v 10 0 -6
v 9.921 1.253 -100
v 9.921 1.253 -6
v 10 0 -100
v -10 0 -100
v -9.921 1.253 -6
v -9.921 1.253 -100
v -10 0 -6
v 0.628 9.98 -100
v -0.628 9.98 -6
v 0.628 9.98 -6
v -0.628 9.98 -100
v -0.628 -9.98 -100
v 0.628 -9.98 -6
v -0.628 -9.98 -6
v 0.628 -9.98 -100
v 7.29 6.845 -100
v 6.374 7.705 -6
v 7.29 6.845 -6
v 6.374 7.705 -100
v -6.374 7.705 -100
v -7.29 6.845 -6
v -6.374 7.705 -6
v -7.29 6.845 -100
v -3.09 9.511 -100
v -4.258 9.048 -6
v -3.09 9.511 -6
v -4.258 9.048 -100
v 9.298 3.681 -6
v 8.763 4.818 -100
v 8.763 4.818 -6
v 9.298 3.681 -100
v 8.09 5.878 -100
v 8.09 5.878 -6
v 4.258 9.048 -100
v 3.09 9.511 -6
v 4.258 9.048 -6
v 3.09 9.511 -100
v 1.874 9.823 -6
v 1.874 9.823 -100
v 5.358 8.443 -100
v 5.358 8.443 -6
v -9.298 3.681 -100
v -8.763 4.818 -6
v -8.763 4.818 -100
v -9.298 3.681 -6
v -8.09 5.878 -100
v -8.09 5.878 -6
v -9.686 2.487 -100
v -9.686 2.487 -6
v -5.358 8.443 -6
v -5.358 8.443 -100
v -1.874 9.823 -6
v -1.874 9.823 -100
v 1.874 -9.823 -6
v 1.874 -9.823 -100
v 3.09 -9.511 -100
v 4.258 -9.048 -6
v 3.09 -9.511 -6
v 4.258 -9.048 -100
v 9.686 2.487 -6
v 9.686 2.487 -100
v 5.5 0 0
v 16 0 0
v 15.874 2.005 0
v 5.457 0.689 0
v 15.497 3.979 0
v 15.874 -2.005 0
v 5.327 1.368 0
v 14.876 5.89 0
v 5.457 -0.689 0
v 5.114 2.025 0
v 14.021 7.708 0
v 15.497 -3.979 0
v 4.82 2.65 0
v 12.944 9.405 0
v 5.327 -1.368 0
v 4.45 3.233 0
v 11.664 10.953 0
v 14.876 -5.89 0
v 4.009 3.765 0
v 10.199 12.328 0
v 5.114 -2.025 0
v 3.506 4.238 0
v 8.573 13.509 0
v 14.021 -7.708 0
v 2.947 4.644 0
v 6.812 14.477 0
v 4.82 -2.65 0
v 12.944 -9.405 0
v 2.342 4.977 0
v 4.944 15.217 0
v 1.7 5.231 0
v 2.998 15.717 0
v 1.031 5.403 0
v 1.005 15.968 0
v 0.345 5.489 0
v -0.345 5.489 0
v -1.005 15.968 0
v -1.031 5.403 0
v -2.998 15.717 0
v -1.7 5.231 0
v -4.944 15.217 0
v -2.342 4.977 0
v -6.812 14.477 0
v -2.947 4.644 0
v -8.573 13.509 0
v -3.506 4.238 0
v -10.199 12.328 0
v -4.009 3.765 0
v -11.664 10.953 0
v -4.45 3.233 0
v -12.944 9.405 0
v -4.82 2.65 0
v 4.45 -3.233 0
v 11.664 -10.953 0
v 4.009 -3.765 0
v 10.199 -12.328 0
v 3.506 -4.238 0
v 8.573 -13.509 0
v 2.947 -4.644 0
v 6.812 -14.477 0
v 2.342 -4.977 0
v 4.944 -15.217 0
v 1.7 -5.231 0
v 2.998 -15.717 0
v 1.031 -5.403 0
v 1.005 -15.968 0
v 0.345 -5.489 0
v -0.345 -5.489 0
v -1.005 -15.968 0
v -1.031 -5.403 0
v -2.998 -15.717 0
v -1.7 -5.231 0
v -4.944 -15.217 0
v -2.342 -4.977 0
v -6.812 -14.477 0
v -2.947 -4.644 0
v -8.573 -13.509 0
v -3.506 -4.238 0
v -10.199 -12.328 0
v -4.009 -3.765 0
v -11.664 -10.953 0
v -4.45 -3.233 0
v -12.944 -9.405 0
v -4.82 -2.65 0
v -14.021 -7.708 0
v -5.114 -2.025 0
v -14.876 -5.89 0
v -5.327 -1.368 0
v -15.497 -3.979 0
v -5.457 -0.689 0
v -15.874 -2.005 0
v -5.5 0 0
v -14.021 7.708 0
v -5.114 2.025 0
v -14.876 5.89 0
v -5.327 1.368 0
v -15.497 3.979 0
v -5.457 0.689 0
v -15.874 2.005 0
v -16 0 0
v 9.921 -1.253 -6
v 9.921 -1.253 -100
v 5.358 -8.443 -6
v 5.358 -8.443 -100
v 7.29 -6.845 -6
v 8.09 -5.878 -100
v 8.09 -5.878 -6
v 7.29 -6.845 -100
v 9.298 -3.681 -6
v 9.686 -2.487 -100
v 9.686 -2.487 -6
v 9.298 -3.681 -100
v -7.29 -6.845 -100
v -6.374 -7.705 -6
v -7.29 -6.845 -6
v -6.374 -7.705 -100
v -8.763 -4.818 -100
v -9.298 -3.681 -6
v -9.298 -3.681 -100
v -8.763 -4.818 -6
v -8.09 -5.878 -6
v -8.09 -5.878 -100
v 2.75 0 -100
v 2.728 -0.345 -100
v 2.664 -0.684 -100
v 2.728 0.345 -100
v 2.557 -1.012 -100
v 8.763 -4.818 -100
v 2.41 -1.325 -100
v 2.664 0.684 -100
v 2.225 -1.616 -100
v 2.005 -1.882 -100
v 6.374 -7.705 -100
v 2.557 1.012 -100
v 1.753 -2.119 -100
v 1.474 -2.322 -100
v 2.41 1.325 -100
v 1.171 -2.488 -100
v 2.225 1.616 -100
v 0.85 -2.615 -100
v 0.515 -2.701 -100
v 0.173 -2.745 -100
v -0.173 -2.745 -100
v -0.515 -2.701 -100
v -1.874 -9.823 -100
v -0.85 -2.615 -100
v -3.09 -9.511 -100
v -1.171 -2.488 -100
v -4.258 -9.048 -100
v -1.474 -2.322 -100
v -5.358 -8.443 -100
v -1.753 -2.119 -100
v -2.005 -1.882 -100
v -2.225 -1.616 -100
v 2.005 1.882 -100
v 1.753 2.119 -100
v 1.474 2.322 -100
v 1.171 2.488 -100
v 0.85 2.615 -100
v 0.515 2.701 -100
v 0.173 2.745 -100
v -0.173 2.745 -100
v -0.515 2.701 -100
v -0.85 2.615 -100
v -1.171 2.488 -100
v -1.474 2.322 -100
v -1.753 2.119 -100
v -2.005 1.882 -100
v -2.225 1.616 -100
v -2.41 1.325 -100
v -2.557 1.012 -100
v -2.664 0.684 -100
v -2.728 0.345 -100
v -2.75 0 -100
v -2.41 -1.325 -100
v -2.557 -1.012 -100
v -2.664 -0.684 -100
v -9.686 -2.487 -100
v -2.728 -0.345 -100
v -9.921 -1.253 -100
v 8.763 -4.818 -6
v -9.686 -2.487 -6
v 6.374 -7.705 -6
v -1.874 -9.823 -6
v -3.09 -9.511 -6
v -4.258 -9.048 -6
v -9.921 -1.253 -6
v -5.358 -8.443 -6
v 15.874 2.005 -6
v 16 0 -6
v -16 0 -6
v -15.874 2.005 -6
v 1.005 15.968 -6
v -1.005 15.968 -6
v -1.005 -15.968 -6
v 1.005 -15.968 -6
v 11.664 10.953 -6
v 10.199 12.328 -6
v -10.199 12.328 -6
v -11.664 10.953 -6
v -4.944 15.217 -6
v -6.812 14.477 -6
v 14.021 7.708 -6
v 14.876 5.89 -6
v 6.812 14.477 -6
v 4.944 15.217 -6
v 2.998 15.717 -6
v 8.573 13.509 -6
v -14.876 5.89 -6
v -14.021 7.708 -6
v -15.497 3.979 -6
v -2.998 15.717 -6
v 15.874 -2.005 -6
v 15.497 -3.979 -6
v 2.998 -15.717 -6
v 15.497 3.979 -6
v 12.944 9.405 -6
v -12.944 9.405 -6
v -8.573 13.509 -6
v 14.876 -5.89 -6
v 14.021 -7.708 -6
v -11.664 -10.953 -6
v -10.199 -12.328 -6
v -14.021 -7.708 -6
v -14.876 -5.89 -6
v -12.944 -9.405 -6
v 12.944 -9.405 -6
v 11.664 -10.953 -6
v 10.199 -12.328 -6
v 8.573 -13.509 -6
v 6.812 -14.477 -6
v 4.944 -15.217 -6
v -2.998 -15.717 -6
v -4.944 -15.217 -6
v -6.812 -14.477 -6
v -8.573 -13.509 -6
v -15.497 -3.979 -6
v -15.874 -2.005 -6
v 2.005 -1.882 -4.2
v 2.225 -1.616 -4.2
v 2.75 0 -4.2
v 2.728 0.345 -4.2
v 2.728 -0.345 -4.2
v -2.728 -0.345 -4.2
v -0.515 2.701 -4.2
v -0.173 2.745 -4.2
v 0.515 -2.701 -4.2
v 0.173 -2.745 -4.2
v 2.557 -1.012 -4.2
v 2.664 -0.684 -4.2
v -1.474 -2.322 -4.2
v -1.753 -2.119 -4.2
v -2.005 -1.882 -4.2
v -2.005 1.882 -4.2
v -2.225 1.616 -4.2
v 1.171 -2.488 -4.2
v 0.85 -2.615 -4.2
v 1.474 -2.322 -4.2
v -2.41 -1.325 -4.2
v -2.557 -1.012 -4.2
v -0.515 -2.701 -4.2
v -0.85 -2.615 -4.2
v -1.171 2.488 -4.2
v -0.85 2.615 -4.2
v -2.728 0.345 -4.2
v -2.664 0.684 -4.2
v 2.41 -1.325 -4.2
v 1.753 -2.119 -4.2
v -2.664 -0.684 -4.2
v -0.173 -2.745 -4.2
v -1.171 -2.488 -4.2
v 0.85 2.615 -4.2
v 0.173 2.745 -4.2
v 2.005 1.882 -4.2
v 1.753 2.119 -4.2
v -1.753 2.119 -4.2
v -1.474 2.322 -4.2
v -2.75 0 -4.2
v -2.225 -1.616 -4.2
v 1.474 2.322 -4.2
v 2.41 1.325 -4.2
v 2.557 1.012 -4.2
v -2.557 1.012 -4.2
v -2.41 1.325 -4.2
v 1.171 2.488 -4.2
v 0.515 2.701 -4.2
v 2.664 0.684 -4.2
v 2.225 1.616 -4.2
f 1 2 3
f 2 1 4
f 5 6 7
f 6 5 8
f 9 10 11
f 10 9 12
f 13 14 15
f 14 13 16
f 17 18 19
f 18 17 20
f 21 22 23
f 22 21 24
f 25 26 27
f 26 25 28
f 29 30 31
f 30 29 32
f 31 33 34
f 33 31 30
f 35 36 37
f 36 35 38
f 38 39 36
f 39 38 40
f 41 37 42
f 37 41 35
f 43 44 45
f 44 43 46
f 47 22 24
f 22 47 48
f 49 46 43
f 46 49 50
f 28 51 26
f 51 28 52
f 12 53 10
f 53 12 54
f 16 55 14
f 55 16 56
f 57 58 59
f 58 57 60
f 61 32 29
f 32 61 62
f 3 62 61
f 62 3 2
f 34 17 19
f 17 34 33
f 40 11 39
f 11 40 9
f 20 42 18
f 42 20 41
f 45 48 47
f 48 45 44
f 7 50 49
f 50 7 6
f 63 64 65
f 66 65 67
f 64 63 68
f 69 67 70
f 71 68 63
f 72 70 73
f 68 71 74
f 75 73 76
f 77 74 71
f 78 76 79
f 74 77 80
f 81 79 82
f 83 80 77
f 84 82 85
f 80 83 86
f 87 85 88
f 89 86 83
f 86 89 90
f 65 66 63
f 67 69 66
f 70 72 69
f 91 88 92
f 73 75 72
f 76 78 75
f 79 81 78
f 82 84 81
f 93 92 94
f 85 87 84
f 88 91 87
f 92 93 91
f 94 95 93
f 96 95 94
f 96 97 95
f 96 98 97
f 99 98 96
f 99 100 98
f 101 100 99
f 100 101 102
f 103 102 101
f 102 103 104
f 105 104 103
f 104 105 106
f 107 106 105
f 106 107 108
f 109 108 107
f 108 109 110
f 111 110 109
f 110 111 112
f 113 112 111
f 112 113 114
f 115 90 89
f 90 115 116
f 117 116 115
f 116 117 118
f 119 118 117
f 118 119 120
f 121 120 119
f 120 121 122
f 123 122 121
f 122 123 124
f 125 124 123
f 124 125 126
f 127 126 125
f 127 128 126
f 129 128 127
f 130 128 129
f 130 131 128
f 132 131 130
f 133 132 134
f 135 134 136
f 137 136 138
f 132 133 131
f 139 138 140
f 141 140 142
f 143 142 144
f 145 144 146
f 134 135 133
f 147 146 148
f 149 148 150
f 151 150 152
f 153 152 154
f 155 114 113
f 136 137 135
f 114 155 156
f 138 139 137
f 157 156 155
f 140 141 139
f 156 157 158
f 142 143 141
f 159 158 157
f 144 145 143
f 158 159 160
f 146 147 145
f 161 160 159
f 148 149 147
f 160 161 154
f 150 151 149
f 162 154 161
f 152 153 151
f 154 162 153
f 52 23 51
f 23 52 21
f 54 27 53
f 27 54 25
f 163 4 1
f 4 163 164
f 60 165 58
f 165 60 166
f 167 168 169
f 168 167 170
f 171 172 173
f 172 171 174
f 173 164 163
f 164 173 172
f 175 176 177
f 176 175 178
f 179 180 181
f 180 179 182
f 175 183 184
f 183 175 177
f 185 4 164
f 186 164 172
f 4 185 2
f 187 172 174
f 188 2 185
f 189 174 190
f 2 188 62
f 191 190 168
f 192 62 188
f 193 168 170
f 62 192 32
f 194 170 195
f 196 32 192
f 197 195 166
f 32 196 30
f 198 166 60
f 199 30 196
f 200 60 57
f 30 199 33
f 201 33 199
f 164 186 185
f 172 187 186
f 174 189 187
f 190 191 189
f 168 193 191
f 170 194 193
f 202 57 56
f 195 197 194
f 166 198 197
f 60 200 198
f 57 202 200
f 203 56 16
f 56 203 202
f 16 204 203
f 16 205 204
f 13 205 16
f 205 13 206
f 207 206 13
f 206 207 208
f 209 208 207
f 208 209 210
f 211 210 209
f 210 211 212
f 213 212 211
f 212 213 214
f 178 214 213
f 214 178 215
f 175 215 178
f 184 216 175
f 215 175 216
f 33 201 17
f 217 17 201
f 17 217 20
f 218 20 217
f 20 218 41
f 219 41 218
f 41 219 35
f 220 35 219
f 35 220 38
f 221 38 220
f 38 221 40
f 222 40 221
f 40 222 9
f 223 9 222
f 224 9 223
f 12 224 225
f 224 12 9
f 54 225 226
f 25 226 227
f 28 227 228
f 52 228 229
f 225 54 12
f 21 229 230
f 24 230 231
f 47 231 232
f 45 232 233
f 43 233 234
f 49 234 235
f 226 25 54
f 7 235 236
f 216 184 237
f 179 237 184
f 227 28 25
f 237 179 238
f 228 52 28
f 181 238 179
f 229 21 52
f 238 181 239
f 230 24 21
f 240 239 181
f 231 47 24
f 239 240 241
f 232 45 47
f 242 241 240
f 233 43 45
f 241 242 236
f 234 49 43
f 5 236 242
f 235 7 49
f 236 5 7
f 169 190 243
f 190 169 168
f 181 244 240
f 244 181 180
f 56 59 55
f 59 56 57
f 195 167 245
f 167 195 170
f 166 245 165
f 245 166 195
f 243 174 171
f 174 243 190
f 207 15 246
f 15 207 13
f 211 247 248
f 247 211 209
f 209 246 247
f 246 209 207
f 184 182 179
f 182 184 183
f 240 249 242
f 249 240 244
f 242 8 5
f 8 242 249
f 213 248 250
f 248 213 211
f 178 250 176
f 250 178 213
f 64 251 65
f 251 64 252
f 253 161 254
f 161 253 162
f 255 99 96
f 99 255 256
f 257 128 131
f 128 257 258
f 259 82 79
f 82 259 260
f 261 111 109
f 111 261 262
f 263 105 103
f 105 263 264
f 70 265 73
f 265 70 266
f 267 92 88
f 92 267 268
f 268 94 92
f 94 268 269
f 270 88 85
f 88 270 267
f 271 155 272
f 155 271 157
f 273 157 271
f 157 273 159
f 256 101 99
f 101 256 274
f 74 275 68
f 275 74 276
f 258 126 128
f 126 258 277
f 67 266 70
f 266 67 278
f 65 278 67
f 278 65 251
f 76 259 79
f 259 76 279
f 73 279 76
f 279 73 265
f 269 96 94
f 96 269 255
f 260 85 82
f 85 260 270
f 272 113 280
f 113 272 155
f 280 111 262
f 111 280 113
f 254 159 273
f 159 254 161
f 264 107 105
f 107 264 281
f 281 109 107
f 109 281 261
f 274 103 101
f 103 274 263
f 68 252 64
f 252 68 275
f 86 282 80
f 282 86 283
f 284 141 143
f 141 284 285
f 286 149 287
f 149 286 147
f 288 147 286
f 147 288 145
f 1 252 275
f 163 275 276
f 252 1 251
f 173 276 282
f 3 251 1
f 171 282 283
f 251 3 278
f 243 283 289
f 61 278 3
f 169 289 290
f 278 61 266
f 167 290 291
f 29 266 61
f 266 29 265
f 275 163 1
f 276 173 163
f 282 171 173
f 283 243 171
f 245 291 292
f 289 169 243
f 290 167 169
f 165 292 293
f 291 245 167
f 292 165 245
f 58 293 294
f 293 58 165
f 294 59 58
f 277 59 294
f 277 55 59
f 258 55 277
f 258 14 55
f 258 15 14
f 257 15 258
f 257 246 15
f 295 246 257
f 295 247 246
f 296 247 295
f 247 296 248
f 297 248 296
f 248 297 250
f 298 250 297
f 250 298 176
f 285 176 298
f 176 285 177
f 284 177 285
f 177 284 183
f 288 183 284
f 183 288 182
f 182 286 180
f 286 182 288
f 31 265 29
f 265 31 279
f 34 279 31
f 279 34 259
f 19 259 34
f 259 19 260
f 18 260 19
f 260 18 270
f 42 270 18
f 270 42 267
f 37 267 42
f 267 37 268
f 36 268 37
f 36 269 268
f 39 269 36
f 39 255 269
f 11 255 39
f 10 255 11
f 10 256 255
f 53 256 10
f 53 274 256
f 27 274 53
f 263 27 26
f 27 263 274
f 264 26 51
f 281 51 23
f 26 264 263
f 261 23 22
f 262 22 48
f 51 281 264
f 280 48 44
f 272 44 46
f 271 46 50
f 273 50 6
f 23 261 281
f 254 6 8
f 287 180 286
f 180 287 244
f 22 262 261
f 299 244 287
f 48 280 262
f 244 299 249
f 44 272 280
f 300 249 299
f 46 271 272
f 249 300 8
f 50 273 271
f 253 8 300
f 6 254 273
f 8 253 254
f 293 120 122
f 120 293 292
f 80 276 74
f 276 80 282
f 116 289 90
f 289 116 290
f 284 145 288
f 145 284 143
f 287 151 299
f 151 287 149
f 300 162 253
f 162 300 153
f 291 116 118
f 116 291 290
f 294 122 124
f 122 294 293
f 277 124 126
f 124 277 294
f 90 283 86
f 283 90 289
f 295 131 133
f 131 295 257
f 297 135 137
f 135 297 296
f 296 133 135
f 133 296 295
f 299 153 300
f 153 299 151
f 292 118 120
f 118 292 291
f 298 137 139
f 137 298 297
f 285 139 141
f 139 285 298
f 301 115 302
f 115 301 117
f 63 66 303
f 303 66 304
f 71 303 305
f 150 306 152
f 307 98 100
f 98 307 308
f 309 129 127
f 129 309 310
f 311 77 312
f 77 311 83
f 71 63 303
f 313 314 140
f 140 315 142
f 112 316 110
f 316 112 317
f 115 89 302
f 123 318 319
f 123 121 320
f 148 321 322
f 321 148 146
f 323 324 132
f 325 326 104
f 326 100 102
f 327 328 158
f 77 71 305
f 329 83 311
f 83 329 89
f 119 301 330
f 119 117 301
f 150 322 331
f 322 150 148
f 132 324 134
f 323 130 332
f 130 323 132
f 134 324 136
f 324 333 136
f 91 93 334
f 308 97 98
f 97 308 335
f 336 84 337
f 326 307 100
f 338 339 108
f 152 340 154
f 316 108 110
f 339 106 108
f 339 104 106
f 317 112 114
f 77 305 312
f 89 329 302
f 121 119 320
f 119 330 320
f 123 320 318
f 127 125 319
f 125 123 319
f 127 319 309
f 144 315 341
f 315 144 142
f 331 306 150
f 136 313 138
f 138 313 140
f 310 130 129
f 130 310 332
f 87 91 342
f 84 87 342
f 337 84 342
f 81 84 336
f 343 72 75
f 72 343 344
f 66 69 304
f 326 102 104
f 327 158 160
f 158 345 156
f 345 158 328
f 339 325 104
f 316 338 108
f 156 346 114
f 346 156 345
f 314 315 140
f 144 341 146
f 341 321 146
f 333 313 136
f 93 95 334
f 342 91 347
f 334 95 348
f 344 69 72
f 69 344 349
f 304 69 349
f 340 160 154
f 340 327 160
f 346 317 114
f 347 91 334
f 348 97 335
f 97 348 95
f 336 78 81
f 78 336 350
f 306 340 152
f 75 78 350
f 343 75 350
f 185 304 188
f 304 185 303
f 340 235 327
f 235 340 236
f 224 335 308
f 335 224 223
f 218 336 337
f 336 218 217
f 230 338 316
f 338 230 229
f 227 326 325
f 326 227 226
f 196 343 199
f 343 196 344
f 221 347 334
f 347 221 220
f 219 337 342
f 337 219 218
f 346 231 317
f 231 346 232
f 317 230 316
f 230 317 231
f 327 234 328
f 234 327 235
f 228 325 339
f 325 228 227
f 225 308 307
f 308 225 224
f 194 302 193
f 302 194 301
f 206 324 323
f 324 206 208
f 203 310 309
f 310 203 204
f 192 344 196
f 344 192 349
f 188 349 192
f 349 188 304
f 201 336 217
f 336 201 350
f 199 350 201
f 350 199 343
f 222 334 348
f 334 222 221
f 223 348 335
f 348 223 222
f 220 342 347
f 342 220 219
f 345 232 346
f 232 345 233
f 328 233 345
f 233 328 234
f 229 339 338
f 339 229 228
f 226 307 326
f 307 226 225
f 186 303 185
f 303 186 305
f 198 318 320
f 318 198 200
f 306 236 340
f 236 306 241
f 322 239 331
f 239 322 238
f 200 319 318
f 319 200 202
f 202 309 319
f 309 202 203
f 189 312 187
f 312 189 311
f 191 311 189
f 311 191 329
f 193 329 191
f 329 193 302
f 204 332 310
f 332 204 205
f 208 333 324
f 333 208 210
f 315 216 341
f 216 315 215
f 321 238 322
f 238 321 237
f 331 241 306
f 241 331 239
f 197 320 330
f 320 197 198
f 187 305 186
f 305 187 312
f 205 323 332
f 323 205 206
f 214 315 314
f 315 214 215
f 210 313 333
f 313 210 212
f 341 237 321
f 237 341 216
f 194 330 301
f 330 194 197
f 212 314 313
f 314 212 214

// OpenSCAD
$fn = 50;


difference() {
	union() {
		translate(v = [0, 0, -100.0000000000]) {
			cylinder(h = 100, r = 10.0000000000);
		}
		translate(v = [0, 0, -6.0000000000]) {
			cylinder(h = 6, r = 16.0000000000);
		}
	}
	union() {
		translate(v = [0, 0, 0]) {
			rotate(a = [0, 0, 0]) {
				difference() {
					union() {
						#translate(v = [0, 0, -100.0000000000]) {
							cylinder(h = 100, r = 2.2500000000);
						}
						#translate(v = [0, 0, -4.2000000000]) {
							cylinder(h = 4.2000000000, r1 = 2.7500000000, r2 = 5.5000000000);
						}
						#translate(v = [0, 0, -100.0000000000]) {
							cylinder(h = 100, r = 2.7500000000);
						}
						#translate(v = [0, 0, -100.0000000000]) {
							cylinder(h = 100, r = 2.2500000000);
						}
					}
					union();
				}
			}
		}
	}
}
